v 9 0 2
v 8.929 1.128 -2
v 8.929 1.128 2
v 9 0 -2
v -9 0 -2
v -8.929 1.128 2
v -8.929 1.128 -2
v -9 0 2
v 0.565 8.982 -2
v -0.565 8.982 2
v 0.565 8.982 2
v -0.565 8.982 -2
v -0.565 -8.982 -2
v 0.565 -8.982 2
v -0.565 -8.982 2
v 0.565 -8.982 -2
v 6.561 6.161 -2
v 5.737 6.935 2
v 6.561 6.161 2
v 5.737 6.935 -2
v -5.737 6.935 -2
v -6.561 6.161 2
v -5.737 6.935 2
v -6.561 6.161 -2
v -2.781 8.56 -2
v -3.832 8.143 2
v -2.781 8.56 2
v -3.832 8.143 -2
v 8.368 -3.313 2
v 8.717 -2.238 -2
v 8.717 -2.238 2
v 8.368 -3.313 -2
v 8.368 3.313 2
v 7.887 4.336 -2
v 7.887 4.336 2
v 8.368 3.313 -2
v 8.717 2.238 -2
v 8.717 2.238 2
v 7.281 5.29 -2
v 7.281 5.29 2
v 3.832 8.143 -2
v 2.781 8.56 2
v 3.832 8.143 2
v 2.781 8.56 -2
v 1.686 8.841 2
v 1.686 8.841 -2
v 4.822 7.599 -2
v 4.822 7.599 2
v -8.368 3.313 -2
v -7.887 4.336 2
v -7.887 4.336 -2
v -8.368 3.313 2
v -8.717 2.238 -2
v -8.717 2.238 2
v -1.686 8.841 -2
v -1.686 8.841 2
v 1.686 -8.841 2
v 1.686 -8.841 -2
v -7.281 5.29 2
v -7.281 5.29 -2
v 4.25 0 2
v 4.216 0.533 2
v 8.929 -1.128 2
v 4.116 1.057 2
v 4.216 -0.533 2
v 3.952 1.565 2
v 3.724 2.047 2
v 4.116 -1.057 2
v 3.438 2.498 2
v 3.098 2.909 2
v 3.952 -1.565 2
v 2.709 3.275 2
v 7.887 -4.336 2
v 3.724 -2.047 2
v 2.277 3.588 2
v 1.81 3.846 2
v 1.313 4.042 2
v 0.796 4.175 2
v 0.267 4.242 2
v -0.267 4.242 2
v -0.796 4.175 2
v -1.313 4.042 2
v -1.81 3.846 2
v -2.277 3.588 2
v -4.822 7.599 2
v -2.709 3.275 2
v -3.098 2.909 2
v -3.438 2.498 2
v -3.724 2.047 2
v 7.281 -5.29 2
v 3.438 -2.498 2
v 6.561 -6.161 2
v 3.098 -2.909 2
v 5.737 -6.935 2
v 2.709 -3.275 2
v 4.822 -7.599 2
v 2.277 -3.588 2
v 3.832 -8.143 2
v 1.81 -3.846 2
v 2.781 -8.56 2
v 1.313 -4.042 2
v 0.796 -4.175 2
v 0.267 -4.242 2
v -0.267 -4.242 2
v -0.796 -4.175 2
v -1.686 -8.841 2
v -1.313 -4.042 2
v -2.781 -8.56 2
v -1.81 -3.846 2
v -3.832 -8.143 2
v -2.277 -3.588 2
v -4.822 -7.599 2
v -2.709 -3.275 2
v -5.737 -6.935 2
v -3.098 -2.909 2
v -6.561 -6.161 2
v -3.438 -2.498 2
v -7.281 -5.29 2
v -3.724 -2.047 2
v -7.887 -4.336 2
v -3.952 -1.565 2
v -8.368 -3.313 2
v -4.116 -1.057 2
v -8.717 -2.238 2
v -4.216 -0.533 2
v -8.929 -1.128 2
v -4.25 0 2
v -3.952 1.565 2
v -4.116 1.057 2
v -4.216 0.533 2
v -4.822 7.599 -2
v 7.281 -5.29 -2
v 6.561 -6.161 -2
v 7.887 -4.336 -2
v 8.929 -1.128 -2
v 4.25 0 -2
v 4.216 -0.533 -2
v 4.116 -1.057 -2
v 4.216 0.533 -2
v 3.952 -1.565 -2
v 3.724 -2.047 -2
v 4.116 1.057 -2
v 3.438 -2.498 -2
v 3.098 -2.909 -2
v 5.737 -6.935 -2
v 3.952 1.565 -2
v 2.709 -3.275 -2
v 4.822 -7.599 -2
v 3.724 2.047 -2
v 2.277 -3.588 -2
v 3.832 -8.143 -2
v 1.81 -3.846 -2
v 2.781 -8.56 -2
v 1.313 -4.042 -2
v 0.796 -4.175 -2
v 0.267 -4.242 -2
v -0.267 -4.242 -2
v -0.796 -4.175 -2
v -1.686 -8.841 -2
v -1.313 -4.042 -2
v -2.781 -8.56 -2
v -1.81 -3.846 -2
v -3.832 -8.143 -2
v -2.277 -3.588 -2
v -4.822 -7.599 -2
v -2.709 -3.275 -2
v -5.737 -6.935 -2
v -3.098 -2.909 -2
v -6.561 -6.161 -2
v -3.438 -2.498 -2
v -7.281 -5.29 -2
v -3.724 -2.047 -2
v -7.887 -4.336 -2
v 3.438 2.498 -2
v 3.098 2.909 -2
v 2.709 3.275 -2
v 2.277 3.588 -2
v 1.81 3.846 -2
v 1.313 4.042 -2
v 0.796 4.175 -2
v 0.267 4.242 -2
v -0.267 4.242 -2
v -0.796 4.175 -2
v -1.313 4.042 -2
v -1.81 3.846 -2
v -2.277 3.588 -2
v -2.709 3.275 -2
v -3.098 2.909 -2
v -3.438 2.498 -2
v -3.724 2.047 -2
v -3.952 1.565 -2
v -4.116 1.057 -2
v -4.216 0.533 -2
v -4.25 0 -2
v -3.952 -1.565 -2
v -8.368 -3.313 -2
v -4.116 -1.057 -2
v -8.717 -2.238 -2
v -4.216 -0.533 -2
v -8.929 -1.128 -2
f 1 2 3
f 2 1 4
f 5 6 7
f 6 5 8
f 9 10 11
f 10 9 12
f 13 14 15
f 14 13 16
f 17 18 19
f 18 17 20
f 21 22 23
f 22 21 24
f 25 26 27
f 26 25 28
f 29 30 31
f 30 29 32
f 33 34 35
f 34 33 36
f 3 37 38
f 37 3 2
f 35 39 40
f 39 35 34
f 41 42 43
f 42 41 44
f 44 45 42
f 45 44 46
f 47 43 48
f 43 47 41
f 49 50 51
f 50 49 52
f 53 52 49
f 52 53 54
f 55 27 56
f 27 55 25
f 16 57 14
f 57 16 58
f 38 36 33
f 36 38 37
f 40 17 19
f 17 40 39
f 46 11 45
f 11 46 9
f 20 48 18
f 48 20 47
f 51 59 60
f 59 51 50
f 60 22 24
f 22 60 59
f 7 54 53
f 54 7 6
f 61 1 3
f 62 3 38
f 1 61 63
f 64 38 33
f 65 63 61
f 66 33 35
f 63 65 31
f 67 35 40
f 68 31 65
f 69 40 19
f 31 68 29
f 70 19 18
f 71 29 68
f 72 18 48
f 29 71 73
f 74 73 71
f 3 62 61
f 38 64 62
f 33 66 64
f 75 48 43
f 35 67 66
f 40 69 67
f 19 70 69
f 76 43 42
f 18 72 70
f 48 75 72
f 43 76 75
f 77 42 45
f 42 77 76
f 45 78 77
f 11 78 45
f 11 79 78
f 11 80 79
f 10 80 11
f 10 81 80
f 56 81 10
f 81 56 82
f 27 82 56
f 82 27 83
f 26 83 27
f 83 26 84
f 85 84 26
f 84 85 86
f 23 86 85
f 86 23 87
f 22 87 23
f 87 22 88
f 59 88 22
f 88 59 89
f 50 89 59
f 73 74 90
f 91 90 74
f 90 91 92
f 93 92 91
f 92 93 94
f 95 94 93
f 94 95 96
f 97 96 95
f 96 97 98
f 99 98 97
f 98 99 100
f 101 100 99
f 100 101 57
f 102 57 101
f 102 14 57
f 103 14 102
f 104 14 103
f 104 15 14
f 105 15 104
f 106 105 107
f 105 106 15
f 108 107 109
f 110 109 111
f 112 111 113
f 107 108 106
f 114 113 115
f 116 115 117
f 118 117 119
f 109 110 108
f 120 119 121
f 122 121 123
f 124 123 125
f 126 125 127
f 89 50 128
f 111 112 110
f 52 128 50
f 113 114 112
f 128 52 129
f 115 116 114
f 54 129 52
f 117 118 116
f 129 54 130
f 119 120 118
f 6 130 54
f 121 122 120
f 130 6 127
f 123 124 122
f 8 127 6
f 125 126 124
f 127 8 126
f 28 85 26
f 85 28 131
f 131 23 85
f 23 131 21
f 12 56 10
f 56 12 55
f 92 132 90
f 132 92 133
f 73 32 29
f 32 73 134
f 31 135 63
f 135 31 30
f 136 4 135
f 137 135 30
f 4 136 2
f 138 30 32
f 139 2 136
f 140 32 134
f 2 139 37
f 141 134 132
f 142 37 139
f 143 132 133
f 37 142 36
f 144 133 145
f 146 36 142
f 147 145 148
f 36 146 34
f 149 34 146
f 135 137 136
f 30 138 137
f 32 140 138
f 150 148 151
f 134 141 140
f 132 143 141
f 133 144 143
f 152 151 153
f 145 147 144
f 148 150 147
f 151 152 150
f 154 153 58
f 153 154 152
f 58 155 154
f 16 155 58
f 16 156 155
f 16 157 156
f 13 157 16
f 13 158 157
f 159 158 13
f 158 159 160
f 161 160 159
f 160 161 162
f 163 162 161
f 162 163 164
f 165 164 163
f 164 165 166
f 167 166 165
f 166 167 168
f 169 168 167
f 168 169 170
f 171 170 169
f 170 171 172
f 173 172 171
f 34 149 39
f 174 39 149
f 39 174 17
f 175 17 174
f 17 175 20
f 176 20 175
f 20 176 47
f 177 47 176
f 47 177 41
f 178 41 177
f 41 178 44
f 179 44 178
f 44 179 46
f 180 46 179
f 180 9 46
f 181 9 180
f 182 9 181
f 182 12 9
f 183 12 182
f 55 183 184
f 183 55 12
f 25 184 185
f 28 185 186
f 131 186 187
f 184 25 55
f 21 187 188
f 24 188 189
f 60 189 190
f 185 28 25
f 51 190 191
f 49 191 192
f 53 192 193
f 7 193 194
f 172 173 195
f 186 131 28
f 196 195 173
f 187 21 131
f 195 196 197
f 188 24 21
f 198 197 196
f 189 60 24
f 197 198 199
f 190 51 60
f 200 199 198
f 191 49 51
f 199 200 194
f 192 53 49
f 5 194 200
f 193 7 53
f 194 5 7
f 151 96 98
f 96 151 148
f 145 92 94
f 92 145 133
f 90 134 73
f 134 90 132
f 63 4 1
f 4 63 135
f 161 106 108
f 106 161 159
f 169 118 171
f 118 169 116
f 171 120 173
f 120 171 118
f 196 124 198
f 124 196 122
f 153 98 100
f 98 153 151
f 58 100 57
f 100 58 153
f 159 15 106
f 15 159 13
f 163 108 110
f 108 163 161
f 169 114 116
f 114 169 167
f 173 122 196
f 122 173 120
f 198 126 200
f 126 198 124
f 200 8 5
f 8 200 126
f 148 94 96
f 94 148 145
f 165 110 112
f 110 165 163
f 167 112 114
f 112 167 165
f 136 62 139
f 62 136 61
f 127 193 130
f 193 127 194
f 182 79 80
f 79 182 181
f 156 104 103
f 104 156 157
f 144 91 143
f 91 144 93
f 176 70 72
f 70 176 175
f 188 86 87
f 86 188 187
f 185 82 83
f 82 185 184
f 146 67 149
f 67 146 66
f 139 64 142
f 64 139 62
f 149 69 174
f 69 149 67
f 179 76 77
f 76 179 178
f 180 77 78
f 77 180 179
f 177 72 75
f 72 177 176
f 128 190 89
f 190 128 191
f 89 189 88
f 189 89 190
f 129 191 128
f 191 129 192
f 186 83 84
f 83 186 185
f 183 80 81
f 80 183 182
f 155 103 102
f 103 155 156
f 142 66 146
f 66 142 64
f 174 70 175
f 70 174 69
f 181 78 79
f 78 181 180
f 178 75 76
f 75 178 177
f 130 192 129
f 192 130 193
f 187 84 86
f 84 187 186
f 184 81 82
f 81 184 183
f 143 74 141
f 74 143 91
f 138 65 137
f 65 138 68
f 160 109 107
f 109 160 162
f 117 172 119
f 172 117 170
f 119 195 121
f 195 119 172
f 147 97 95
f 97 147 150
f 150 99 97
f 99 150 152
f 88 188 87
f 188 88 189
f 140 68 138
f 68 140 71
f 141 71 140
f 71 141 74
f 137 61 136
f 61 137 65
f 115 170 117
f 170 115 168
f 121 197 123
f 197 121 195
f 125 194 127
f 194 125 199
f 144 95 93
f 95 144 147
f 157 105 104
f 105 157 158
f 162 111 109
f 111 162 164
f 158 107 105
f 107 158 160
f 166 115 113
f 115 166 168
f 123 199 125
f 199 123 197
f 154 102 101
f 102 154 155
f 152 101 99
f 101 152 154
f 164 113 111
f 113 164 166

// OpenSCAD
$fn = 50;


difference() {
	union() {
		translate(v = [0, 0, -2.0000000000]) {
			cylinder(h = 4, r = 9.0000000000);
		}
	}
	union() {
		translate(v = [0, 0, -100.0000000000]) {
			cylinder(h = 200, r = 4.2500000000);
		}
	}
}
